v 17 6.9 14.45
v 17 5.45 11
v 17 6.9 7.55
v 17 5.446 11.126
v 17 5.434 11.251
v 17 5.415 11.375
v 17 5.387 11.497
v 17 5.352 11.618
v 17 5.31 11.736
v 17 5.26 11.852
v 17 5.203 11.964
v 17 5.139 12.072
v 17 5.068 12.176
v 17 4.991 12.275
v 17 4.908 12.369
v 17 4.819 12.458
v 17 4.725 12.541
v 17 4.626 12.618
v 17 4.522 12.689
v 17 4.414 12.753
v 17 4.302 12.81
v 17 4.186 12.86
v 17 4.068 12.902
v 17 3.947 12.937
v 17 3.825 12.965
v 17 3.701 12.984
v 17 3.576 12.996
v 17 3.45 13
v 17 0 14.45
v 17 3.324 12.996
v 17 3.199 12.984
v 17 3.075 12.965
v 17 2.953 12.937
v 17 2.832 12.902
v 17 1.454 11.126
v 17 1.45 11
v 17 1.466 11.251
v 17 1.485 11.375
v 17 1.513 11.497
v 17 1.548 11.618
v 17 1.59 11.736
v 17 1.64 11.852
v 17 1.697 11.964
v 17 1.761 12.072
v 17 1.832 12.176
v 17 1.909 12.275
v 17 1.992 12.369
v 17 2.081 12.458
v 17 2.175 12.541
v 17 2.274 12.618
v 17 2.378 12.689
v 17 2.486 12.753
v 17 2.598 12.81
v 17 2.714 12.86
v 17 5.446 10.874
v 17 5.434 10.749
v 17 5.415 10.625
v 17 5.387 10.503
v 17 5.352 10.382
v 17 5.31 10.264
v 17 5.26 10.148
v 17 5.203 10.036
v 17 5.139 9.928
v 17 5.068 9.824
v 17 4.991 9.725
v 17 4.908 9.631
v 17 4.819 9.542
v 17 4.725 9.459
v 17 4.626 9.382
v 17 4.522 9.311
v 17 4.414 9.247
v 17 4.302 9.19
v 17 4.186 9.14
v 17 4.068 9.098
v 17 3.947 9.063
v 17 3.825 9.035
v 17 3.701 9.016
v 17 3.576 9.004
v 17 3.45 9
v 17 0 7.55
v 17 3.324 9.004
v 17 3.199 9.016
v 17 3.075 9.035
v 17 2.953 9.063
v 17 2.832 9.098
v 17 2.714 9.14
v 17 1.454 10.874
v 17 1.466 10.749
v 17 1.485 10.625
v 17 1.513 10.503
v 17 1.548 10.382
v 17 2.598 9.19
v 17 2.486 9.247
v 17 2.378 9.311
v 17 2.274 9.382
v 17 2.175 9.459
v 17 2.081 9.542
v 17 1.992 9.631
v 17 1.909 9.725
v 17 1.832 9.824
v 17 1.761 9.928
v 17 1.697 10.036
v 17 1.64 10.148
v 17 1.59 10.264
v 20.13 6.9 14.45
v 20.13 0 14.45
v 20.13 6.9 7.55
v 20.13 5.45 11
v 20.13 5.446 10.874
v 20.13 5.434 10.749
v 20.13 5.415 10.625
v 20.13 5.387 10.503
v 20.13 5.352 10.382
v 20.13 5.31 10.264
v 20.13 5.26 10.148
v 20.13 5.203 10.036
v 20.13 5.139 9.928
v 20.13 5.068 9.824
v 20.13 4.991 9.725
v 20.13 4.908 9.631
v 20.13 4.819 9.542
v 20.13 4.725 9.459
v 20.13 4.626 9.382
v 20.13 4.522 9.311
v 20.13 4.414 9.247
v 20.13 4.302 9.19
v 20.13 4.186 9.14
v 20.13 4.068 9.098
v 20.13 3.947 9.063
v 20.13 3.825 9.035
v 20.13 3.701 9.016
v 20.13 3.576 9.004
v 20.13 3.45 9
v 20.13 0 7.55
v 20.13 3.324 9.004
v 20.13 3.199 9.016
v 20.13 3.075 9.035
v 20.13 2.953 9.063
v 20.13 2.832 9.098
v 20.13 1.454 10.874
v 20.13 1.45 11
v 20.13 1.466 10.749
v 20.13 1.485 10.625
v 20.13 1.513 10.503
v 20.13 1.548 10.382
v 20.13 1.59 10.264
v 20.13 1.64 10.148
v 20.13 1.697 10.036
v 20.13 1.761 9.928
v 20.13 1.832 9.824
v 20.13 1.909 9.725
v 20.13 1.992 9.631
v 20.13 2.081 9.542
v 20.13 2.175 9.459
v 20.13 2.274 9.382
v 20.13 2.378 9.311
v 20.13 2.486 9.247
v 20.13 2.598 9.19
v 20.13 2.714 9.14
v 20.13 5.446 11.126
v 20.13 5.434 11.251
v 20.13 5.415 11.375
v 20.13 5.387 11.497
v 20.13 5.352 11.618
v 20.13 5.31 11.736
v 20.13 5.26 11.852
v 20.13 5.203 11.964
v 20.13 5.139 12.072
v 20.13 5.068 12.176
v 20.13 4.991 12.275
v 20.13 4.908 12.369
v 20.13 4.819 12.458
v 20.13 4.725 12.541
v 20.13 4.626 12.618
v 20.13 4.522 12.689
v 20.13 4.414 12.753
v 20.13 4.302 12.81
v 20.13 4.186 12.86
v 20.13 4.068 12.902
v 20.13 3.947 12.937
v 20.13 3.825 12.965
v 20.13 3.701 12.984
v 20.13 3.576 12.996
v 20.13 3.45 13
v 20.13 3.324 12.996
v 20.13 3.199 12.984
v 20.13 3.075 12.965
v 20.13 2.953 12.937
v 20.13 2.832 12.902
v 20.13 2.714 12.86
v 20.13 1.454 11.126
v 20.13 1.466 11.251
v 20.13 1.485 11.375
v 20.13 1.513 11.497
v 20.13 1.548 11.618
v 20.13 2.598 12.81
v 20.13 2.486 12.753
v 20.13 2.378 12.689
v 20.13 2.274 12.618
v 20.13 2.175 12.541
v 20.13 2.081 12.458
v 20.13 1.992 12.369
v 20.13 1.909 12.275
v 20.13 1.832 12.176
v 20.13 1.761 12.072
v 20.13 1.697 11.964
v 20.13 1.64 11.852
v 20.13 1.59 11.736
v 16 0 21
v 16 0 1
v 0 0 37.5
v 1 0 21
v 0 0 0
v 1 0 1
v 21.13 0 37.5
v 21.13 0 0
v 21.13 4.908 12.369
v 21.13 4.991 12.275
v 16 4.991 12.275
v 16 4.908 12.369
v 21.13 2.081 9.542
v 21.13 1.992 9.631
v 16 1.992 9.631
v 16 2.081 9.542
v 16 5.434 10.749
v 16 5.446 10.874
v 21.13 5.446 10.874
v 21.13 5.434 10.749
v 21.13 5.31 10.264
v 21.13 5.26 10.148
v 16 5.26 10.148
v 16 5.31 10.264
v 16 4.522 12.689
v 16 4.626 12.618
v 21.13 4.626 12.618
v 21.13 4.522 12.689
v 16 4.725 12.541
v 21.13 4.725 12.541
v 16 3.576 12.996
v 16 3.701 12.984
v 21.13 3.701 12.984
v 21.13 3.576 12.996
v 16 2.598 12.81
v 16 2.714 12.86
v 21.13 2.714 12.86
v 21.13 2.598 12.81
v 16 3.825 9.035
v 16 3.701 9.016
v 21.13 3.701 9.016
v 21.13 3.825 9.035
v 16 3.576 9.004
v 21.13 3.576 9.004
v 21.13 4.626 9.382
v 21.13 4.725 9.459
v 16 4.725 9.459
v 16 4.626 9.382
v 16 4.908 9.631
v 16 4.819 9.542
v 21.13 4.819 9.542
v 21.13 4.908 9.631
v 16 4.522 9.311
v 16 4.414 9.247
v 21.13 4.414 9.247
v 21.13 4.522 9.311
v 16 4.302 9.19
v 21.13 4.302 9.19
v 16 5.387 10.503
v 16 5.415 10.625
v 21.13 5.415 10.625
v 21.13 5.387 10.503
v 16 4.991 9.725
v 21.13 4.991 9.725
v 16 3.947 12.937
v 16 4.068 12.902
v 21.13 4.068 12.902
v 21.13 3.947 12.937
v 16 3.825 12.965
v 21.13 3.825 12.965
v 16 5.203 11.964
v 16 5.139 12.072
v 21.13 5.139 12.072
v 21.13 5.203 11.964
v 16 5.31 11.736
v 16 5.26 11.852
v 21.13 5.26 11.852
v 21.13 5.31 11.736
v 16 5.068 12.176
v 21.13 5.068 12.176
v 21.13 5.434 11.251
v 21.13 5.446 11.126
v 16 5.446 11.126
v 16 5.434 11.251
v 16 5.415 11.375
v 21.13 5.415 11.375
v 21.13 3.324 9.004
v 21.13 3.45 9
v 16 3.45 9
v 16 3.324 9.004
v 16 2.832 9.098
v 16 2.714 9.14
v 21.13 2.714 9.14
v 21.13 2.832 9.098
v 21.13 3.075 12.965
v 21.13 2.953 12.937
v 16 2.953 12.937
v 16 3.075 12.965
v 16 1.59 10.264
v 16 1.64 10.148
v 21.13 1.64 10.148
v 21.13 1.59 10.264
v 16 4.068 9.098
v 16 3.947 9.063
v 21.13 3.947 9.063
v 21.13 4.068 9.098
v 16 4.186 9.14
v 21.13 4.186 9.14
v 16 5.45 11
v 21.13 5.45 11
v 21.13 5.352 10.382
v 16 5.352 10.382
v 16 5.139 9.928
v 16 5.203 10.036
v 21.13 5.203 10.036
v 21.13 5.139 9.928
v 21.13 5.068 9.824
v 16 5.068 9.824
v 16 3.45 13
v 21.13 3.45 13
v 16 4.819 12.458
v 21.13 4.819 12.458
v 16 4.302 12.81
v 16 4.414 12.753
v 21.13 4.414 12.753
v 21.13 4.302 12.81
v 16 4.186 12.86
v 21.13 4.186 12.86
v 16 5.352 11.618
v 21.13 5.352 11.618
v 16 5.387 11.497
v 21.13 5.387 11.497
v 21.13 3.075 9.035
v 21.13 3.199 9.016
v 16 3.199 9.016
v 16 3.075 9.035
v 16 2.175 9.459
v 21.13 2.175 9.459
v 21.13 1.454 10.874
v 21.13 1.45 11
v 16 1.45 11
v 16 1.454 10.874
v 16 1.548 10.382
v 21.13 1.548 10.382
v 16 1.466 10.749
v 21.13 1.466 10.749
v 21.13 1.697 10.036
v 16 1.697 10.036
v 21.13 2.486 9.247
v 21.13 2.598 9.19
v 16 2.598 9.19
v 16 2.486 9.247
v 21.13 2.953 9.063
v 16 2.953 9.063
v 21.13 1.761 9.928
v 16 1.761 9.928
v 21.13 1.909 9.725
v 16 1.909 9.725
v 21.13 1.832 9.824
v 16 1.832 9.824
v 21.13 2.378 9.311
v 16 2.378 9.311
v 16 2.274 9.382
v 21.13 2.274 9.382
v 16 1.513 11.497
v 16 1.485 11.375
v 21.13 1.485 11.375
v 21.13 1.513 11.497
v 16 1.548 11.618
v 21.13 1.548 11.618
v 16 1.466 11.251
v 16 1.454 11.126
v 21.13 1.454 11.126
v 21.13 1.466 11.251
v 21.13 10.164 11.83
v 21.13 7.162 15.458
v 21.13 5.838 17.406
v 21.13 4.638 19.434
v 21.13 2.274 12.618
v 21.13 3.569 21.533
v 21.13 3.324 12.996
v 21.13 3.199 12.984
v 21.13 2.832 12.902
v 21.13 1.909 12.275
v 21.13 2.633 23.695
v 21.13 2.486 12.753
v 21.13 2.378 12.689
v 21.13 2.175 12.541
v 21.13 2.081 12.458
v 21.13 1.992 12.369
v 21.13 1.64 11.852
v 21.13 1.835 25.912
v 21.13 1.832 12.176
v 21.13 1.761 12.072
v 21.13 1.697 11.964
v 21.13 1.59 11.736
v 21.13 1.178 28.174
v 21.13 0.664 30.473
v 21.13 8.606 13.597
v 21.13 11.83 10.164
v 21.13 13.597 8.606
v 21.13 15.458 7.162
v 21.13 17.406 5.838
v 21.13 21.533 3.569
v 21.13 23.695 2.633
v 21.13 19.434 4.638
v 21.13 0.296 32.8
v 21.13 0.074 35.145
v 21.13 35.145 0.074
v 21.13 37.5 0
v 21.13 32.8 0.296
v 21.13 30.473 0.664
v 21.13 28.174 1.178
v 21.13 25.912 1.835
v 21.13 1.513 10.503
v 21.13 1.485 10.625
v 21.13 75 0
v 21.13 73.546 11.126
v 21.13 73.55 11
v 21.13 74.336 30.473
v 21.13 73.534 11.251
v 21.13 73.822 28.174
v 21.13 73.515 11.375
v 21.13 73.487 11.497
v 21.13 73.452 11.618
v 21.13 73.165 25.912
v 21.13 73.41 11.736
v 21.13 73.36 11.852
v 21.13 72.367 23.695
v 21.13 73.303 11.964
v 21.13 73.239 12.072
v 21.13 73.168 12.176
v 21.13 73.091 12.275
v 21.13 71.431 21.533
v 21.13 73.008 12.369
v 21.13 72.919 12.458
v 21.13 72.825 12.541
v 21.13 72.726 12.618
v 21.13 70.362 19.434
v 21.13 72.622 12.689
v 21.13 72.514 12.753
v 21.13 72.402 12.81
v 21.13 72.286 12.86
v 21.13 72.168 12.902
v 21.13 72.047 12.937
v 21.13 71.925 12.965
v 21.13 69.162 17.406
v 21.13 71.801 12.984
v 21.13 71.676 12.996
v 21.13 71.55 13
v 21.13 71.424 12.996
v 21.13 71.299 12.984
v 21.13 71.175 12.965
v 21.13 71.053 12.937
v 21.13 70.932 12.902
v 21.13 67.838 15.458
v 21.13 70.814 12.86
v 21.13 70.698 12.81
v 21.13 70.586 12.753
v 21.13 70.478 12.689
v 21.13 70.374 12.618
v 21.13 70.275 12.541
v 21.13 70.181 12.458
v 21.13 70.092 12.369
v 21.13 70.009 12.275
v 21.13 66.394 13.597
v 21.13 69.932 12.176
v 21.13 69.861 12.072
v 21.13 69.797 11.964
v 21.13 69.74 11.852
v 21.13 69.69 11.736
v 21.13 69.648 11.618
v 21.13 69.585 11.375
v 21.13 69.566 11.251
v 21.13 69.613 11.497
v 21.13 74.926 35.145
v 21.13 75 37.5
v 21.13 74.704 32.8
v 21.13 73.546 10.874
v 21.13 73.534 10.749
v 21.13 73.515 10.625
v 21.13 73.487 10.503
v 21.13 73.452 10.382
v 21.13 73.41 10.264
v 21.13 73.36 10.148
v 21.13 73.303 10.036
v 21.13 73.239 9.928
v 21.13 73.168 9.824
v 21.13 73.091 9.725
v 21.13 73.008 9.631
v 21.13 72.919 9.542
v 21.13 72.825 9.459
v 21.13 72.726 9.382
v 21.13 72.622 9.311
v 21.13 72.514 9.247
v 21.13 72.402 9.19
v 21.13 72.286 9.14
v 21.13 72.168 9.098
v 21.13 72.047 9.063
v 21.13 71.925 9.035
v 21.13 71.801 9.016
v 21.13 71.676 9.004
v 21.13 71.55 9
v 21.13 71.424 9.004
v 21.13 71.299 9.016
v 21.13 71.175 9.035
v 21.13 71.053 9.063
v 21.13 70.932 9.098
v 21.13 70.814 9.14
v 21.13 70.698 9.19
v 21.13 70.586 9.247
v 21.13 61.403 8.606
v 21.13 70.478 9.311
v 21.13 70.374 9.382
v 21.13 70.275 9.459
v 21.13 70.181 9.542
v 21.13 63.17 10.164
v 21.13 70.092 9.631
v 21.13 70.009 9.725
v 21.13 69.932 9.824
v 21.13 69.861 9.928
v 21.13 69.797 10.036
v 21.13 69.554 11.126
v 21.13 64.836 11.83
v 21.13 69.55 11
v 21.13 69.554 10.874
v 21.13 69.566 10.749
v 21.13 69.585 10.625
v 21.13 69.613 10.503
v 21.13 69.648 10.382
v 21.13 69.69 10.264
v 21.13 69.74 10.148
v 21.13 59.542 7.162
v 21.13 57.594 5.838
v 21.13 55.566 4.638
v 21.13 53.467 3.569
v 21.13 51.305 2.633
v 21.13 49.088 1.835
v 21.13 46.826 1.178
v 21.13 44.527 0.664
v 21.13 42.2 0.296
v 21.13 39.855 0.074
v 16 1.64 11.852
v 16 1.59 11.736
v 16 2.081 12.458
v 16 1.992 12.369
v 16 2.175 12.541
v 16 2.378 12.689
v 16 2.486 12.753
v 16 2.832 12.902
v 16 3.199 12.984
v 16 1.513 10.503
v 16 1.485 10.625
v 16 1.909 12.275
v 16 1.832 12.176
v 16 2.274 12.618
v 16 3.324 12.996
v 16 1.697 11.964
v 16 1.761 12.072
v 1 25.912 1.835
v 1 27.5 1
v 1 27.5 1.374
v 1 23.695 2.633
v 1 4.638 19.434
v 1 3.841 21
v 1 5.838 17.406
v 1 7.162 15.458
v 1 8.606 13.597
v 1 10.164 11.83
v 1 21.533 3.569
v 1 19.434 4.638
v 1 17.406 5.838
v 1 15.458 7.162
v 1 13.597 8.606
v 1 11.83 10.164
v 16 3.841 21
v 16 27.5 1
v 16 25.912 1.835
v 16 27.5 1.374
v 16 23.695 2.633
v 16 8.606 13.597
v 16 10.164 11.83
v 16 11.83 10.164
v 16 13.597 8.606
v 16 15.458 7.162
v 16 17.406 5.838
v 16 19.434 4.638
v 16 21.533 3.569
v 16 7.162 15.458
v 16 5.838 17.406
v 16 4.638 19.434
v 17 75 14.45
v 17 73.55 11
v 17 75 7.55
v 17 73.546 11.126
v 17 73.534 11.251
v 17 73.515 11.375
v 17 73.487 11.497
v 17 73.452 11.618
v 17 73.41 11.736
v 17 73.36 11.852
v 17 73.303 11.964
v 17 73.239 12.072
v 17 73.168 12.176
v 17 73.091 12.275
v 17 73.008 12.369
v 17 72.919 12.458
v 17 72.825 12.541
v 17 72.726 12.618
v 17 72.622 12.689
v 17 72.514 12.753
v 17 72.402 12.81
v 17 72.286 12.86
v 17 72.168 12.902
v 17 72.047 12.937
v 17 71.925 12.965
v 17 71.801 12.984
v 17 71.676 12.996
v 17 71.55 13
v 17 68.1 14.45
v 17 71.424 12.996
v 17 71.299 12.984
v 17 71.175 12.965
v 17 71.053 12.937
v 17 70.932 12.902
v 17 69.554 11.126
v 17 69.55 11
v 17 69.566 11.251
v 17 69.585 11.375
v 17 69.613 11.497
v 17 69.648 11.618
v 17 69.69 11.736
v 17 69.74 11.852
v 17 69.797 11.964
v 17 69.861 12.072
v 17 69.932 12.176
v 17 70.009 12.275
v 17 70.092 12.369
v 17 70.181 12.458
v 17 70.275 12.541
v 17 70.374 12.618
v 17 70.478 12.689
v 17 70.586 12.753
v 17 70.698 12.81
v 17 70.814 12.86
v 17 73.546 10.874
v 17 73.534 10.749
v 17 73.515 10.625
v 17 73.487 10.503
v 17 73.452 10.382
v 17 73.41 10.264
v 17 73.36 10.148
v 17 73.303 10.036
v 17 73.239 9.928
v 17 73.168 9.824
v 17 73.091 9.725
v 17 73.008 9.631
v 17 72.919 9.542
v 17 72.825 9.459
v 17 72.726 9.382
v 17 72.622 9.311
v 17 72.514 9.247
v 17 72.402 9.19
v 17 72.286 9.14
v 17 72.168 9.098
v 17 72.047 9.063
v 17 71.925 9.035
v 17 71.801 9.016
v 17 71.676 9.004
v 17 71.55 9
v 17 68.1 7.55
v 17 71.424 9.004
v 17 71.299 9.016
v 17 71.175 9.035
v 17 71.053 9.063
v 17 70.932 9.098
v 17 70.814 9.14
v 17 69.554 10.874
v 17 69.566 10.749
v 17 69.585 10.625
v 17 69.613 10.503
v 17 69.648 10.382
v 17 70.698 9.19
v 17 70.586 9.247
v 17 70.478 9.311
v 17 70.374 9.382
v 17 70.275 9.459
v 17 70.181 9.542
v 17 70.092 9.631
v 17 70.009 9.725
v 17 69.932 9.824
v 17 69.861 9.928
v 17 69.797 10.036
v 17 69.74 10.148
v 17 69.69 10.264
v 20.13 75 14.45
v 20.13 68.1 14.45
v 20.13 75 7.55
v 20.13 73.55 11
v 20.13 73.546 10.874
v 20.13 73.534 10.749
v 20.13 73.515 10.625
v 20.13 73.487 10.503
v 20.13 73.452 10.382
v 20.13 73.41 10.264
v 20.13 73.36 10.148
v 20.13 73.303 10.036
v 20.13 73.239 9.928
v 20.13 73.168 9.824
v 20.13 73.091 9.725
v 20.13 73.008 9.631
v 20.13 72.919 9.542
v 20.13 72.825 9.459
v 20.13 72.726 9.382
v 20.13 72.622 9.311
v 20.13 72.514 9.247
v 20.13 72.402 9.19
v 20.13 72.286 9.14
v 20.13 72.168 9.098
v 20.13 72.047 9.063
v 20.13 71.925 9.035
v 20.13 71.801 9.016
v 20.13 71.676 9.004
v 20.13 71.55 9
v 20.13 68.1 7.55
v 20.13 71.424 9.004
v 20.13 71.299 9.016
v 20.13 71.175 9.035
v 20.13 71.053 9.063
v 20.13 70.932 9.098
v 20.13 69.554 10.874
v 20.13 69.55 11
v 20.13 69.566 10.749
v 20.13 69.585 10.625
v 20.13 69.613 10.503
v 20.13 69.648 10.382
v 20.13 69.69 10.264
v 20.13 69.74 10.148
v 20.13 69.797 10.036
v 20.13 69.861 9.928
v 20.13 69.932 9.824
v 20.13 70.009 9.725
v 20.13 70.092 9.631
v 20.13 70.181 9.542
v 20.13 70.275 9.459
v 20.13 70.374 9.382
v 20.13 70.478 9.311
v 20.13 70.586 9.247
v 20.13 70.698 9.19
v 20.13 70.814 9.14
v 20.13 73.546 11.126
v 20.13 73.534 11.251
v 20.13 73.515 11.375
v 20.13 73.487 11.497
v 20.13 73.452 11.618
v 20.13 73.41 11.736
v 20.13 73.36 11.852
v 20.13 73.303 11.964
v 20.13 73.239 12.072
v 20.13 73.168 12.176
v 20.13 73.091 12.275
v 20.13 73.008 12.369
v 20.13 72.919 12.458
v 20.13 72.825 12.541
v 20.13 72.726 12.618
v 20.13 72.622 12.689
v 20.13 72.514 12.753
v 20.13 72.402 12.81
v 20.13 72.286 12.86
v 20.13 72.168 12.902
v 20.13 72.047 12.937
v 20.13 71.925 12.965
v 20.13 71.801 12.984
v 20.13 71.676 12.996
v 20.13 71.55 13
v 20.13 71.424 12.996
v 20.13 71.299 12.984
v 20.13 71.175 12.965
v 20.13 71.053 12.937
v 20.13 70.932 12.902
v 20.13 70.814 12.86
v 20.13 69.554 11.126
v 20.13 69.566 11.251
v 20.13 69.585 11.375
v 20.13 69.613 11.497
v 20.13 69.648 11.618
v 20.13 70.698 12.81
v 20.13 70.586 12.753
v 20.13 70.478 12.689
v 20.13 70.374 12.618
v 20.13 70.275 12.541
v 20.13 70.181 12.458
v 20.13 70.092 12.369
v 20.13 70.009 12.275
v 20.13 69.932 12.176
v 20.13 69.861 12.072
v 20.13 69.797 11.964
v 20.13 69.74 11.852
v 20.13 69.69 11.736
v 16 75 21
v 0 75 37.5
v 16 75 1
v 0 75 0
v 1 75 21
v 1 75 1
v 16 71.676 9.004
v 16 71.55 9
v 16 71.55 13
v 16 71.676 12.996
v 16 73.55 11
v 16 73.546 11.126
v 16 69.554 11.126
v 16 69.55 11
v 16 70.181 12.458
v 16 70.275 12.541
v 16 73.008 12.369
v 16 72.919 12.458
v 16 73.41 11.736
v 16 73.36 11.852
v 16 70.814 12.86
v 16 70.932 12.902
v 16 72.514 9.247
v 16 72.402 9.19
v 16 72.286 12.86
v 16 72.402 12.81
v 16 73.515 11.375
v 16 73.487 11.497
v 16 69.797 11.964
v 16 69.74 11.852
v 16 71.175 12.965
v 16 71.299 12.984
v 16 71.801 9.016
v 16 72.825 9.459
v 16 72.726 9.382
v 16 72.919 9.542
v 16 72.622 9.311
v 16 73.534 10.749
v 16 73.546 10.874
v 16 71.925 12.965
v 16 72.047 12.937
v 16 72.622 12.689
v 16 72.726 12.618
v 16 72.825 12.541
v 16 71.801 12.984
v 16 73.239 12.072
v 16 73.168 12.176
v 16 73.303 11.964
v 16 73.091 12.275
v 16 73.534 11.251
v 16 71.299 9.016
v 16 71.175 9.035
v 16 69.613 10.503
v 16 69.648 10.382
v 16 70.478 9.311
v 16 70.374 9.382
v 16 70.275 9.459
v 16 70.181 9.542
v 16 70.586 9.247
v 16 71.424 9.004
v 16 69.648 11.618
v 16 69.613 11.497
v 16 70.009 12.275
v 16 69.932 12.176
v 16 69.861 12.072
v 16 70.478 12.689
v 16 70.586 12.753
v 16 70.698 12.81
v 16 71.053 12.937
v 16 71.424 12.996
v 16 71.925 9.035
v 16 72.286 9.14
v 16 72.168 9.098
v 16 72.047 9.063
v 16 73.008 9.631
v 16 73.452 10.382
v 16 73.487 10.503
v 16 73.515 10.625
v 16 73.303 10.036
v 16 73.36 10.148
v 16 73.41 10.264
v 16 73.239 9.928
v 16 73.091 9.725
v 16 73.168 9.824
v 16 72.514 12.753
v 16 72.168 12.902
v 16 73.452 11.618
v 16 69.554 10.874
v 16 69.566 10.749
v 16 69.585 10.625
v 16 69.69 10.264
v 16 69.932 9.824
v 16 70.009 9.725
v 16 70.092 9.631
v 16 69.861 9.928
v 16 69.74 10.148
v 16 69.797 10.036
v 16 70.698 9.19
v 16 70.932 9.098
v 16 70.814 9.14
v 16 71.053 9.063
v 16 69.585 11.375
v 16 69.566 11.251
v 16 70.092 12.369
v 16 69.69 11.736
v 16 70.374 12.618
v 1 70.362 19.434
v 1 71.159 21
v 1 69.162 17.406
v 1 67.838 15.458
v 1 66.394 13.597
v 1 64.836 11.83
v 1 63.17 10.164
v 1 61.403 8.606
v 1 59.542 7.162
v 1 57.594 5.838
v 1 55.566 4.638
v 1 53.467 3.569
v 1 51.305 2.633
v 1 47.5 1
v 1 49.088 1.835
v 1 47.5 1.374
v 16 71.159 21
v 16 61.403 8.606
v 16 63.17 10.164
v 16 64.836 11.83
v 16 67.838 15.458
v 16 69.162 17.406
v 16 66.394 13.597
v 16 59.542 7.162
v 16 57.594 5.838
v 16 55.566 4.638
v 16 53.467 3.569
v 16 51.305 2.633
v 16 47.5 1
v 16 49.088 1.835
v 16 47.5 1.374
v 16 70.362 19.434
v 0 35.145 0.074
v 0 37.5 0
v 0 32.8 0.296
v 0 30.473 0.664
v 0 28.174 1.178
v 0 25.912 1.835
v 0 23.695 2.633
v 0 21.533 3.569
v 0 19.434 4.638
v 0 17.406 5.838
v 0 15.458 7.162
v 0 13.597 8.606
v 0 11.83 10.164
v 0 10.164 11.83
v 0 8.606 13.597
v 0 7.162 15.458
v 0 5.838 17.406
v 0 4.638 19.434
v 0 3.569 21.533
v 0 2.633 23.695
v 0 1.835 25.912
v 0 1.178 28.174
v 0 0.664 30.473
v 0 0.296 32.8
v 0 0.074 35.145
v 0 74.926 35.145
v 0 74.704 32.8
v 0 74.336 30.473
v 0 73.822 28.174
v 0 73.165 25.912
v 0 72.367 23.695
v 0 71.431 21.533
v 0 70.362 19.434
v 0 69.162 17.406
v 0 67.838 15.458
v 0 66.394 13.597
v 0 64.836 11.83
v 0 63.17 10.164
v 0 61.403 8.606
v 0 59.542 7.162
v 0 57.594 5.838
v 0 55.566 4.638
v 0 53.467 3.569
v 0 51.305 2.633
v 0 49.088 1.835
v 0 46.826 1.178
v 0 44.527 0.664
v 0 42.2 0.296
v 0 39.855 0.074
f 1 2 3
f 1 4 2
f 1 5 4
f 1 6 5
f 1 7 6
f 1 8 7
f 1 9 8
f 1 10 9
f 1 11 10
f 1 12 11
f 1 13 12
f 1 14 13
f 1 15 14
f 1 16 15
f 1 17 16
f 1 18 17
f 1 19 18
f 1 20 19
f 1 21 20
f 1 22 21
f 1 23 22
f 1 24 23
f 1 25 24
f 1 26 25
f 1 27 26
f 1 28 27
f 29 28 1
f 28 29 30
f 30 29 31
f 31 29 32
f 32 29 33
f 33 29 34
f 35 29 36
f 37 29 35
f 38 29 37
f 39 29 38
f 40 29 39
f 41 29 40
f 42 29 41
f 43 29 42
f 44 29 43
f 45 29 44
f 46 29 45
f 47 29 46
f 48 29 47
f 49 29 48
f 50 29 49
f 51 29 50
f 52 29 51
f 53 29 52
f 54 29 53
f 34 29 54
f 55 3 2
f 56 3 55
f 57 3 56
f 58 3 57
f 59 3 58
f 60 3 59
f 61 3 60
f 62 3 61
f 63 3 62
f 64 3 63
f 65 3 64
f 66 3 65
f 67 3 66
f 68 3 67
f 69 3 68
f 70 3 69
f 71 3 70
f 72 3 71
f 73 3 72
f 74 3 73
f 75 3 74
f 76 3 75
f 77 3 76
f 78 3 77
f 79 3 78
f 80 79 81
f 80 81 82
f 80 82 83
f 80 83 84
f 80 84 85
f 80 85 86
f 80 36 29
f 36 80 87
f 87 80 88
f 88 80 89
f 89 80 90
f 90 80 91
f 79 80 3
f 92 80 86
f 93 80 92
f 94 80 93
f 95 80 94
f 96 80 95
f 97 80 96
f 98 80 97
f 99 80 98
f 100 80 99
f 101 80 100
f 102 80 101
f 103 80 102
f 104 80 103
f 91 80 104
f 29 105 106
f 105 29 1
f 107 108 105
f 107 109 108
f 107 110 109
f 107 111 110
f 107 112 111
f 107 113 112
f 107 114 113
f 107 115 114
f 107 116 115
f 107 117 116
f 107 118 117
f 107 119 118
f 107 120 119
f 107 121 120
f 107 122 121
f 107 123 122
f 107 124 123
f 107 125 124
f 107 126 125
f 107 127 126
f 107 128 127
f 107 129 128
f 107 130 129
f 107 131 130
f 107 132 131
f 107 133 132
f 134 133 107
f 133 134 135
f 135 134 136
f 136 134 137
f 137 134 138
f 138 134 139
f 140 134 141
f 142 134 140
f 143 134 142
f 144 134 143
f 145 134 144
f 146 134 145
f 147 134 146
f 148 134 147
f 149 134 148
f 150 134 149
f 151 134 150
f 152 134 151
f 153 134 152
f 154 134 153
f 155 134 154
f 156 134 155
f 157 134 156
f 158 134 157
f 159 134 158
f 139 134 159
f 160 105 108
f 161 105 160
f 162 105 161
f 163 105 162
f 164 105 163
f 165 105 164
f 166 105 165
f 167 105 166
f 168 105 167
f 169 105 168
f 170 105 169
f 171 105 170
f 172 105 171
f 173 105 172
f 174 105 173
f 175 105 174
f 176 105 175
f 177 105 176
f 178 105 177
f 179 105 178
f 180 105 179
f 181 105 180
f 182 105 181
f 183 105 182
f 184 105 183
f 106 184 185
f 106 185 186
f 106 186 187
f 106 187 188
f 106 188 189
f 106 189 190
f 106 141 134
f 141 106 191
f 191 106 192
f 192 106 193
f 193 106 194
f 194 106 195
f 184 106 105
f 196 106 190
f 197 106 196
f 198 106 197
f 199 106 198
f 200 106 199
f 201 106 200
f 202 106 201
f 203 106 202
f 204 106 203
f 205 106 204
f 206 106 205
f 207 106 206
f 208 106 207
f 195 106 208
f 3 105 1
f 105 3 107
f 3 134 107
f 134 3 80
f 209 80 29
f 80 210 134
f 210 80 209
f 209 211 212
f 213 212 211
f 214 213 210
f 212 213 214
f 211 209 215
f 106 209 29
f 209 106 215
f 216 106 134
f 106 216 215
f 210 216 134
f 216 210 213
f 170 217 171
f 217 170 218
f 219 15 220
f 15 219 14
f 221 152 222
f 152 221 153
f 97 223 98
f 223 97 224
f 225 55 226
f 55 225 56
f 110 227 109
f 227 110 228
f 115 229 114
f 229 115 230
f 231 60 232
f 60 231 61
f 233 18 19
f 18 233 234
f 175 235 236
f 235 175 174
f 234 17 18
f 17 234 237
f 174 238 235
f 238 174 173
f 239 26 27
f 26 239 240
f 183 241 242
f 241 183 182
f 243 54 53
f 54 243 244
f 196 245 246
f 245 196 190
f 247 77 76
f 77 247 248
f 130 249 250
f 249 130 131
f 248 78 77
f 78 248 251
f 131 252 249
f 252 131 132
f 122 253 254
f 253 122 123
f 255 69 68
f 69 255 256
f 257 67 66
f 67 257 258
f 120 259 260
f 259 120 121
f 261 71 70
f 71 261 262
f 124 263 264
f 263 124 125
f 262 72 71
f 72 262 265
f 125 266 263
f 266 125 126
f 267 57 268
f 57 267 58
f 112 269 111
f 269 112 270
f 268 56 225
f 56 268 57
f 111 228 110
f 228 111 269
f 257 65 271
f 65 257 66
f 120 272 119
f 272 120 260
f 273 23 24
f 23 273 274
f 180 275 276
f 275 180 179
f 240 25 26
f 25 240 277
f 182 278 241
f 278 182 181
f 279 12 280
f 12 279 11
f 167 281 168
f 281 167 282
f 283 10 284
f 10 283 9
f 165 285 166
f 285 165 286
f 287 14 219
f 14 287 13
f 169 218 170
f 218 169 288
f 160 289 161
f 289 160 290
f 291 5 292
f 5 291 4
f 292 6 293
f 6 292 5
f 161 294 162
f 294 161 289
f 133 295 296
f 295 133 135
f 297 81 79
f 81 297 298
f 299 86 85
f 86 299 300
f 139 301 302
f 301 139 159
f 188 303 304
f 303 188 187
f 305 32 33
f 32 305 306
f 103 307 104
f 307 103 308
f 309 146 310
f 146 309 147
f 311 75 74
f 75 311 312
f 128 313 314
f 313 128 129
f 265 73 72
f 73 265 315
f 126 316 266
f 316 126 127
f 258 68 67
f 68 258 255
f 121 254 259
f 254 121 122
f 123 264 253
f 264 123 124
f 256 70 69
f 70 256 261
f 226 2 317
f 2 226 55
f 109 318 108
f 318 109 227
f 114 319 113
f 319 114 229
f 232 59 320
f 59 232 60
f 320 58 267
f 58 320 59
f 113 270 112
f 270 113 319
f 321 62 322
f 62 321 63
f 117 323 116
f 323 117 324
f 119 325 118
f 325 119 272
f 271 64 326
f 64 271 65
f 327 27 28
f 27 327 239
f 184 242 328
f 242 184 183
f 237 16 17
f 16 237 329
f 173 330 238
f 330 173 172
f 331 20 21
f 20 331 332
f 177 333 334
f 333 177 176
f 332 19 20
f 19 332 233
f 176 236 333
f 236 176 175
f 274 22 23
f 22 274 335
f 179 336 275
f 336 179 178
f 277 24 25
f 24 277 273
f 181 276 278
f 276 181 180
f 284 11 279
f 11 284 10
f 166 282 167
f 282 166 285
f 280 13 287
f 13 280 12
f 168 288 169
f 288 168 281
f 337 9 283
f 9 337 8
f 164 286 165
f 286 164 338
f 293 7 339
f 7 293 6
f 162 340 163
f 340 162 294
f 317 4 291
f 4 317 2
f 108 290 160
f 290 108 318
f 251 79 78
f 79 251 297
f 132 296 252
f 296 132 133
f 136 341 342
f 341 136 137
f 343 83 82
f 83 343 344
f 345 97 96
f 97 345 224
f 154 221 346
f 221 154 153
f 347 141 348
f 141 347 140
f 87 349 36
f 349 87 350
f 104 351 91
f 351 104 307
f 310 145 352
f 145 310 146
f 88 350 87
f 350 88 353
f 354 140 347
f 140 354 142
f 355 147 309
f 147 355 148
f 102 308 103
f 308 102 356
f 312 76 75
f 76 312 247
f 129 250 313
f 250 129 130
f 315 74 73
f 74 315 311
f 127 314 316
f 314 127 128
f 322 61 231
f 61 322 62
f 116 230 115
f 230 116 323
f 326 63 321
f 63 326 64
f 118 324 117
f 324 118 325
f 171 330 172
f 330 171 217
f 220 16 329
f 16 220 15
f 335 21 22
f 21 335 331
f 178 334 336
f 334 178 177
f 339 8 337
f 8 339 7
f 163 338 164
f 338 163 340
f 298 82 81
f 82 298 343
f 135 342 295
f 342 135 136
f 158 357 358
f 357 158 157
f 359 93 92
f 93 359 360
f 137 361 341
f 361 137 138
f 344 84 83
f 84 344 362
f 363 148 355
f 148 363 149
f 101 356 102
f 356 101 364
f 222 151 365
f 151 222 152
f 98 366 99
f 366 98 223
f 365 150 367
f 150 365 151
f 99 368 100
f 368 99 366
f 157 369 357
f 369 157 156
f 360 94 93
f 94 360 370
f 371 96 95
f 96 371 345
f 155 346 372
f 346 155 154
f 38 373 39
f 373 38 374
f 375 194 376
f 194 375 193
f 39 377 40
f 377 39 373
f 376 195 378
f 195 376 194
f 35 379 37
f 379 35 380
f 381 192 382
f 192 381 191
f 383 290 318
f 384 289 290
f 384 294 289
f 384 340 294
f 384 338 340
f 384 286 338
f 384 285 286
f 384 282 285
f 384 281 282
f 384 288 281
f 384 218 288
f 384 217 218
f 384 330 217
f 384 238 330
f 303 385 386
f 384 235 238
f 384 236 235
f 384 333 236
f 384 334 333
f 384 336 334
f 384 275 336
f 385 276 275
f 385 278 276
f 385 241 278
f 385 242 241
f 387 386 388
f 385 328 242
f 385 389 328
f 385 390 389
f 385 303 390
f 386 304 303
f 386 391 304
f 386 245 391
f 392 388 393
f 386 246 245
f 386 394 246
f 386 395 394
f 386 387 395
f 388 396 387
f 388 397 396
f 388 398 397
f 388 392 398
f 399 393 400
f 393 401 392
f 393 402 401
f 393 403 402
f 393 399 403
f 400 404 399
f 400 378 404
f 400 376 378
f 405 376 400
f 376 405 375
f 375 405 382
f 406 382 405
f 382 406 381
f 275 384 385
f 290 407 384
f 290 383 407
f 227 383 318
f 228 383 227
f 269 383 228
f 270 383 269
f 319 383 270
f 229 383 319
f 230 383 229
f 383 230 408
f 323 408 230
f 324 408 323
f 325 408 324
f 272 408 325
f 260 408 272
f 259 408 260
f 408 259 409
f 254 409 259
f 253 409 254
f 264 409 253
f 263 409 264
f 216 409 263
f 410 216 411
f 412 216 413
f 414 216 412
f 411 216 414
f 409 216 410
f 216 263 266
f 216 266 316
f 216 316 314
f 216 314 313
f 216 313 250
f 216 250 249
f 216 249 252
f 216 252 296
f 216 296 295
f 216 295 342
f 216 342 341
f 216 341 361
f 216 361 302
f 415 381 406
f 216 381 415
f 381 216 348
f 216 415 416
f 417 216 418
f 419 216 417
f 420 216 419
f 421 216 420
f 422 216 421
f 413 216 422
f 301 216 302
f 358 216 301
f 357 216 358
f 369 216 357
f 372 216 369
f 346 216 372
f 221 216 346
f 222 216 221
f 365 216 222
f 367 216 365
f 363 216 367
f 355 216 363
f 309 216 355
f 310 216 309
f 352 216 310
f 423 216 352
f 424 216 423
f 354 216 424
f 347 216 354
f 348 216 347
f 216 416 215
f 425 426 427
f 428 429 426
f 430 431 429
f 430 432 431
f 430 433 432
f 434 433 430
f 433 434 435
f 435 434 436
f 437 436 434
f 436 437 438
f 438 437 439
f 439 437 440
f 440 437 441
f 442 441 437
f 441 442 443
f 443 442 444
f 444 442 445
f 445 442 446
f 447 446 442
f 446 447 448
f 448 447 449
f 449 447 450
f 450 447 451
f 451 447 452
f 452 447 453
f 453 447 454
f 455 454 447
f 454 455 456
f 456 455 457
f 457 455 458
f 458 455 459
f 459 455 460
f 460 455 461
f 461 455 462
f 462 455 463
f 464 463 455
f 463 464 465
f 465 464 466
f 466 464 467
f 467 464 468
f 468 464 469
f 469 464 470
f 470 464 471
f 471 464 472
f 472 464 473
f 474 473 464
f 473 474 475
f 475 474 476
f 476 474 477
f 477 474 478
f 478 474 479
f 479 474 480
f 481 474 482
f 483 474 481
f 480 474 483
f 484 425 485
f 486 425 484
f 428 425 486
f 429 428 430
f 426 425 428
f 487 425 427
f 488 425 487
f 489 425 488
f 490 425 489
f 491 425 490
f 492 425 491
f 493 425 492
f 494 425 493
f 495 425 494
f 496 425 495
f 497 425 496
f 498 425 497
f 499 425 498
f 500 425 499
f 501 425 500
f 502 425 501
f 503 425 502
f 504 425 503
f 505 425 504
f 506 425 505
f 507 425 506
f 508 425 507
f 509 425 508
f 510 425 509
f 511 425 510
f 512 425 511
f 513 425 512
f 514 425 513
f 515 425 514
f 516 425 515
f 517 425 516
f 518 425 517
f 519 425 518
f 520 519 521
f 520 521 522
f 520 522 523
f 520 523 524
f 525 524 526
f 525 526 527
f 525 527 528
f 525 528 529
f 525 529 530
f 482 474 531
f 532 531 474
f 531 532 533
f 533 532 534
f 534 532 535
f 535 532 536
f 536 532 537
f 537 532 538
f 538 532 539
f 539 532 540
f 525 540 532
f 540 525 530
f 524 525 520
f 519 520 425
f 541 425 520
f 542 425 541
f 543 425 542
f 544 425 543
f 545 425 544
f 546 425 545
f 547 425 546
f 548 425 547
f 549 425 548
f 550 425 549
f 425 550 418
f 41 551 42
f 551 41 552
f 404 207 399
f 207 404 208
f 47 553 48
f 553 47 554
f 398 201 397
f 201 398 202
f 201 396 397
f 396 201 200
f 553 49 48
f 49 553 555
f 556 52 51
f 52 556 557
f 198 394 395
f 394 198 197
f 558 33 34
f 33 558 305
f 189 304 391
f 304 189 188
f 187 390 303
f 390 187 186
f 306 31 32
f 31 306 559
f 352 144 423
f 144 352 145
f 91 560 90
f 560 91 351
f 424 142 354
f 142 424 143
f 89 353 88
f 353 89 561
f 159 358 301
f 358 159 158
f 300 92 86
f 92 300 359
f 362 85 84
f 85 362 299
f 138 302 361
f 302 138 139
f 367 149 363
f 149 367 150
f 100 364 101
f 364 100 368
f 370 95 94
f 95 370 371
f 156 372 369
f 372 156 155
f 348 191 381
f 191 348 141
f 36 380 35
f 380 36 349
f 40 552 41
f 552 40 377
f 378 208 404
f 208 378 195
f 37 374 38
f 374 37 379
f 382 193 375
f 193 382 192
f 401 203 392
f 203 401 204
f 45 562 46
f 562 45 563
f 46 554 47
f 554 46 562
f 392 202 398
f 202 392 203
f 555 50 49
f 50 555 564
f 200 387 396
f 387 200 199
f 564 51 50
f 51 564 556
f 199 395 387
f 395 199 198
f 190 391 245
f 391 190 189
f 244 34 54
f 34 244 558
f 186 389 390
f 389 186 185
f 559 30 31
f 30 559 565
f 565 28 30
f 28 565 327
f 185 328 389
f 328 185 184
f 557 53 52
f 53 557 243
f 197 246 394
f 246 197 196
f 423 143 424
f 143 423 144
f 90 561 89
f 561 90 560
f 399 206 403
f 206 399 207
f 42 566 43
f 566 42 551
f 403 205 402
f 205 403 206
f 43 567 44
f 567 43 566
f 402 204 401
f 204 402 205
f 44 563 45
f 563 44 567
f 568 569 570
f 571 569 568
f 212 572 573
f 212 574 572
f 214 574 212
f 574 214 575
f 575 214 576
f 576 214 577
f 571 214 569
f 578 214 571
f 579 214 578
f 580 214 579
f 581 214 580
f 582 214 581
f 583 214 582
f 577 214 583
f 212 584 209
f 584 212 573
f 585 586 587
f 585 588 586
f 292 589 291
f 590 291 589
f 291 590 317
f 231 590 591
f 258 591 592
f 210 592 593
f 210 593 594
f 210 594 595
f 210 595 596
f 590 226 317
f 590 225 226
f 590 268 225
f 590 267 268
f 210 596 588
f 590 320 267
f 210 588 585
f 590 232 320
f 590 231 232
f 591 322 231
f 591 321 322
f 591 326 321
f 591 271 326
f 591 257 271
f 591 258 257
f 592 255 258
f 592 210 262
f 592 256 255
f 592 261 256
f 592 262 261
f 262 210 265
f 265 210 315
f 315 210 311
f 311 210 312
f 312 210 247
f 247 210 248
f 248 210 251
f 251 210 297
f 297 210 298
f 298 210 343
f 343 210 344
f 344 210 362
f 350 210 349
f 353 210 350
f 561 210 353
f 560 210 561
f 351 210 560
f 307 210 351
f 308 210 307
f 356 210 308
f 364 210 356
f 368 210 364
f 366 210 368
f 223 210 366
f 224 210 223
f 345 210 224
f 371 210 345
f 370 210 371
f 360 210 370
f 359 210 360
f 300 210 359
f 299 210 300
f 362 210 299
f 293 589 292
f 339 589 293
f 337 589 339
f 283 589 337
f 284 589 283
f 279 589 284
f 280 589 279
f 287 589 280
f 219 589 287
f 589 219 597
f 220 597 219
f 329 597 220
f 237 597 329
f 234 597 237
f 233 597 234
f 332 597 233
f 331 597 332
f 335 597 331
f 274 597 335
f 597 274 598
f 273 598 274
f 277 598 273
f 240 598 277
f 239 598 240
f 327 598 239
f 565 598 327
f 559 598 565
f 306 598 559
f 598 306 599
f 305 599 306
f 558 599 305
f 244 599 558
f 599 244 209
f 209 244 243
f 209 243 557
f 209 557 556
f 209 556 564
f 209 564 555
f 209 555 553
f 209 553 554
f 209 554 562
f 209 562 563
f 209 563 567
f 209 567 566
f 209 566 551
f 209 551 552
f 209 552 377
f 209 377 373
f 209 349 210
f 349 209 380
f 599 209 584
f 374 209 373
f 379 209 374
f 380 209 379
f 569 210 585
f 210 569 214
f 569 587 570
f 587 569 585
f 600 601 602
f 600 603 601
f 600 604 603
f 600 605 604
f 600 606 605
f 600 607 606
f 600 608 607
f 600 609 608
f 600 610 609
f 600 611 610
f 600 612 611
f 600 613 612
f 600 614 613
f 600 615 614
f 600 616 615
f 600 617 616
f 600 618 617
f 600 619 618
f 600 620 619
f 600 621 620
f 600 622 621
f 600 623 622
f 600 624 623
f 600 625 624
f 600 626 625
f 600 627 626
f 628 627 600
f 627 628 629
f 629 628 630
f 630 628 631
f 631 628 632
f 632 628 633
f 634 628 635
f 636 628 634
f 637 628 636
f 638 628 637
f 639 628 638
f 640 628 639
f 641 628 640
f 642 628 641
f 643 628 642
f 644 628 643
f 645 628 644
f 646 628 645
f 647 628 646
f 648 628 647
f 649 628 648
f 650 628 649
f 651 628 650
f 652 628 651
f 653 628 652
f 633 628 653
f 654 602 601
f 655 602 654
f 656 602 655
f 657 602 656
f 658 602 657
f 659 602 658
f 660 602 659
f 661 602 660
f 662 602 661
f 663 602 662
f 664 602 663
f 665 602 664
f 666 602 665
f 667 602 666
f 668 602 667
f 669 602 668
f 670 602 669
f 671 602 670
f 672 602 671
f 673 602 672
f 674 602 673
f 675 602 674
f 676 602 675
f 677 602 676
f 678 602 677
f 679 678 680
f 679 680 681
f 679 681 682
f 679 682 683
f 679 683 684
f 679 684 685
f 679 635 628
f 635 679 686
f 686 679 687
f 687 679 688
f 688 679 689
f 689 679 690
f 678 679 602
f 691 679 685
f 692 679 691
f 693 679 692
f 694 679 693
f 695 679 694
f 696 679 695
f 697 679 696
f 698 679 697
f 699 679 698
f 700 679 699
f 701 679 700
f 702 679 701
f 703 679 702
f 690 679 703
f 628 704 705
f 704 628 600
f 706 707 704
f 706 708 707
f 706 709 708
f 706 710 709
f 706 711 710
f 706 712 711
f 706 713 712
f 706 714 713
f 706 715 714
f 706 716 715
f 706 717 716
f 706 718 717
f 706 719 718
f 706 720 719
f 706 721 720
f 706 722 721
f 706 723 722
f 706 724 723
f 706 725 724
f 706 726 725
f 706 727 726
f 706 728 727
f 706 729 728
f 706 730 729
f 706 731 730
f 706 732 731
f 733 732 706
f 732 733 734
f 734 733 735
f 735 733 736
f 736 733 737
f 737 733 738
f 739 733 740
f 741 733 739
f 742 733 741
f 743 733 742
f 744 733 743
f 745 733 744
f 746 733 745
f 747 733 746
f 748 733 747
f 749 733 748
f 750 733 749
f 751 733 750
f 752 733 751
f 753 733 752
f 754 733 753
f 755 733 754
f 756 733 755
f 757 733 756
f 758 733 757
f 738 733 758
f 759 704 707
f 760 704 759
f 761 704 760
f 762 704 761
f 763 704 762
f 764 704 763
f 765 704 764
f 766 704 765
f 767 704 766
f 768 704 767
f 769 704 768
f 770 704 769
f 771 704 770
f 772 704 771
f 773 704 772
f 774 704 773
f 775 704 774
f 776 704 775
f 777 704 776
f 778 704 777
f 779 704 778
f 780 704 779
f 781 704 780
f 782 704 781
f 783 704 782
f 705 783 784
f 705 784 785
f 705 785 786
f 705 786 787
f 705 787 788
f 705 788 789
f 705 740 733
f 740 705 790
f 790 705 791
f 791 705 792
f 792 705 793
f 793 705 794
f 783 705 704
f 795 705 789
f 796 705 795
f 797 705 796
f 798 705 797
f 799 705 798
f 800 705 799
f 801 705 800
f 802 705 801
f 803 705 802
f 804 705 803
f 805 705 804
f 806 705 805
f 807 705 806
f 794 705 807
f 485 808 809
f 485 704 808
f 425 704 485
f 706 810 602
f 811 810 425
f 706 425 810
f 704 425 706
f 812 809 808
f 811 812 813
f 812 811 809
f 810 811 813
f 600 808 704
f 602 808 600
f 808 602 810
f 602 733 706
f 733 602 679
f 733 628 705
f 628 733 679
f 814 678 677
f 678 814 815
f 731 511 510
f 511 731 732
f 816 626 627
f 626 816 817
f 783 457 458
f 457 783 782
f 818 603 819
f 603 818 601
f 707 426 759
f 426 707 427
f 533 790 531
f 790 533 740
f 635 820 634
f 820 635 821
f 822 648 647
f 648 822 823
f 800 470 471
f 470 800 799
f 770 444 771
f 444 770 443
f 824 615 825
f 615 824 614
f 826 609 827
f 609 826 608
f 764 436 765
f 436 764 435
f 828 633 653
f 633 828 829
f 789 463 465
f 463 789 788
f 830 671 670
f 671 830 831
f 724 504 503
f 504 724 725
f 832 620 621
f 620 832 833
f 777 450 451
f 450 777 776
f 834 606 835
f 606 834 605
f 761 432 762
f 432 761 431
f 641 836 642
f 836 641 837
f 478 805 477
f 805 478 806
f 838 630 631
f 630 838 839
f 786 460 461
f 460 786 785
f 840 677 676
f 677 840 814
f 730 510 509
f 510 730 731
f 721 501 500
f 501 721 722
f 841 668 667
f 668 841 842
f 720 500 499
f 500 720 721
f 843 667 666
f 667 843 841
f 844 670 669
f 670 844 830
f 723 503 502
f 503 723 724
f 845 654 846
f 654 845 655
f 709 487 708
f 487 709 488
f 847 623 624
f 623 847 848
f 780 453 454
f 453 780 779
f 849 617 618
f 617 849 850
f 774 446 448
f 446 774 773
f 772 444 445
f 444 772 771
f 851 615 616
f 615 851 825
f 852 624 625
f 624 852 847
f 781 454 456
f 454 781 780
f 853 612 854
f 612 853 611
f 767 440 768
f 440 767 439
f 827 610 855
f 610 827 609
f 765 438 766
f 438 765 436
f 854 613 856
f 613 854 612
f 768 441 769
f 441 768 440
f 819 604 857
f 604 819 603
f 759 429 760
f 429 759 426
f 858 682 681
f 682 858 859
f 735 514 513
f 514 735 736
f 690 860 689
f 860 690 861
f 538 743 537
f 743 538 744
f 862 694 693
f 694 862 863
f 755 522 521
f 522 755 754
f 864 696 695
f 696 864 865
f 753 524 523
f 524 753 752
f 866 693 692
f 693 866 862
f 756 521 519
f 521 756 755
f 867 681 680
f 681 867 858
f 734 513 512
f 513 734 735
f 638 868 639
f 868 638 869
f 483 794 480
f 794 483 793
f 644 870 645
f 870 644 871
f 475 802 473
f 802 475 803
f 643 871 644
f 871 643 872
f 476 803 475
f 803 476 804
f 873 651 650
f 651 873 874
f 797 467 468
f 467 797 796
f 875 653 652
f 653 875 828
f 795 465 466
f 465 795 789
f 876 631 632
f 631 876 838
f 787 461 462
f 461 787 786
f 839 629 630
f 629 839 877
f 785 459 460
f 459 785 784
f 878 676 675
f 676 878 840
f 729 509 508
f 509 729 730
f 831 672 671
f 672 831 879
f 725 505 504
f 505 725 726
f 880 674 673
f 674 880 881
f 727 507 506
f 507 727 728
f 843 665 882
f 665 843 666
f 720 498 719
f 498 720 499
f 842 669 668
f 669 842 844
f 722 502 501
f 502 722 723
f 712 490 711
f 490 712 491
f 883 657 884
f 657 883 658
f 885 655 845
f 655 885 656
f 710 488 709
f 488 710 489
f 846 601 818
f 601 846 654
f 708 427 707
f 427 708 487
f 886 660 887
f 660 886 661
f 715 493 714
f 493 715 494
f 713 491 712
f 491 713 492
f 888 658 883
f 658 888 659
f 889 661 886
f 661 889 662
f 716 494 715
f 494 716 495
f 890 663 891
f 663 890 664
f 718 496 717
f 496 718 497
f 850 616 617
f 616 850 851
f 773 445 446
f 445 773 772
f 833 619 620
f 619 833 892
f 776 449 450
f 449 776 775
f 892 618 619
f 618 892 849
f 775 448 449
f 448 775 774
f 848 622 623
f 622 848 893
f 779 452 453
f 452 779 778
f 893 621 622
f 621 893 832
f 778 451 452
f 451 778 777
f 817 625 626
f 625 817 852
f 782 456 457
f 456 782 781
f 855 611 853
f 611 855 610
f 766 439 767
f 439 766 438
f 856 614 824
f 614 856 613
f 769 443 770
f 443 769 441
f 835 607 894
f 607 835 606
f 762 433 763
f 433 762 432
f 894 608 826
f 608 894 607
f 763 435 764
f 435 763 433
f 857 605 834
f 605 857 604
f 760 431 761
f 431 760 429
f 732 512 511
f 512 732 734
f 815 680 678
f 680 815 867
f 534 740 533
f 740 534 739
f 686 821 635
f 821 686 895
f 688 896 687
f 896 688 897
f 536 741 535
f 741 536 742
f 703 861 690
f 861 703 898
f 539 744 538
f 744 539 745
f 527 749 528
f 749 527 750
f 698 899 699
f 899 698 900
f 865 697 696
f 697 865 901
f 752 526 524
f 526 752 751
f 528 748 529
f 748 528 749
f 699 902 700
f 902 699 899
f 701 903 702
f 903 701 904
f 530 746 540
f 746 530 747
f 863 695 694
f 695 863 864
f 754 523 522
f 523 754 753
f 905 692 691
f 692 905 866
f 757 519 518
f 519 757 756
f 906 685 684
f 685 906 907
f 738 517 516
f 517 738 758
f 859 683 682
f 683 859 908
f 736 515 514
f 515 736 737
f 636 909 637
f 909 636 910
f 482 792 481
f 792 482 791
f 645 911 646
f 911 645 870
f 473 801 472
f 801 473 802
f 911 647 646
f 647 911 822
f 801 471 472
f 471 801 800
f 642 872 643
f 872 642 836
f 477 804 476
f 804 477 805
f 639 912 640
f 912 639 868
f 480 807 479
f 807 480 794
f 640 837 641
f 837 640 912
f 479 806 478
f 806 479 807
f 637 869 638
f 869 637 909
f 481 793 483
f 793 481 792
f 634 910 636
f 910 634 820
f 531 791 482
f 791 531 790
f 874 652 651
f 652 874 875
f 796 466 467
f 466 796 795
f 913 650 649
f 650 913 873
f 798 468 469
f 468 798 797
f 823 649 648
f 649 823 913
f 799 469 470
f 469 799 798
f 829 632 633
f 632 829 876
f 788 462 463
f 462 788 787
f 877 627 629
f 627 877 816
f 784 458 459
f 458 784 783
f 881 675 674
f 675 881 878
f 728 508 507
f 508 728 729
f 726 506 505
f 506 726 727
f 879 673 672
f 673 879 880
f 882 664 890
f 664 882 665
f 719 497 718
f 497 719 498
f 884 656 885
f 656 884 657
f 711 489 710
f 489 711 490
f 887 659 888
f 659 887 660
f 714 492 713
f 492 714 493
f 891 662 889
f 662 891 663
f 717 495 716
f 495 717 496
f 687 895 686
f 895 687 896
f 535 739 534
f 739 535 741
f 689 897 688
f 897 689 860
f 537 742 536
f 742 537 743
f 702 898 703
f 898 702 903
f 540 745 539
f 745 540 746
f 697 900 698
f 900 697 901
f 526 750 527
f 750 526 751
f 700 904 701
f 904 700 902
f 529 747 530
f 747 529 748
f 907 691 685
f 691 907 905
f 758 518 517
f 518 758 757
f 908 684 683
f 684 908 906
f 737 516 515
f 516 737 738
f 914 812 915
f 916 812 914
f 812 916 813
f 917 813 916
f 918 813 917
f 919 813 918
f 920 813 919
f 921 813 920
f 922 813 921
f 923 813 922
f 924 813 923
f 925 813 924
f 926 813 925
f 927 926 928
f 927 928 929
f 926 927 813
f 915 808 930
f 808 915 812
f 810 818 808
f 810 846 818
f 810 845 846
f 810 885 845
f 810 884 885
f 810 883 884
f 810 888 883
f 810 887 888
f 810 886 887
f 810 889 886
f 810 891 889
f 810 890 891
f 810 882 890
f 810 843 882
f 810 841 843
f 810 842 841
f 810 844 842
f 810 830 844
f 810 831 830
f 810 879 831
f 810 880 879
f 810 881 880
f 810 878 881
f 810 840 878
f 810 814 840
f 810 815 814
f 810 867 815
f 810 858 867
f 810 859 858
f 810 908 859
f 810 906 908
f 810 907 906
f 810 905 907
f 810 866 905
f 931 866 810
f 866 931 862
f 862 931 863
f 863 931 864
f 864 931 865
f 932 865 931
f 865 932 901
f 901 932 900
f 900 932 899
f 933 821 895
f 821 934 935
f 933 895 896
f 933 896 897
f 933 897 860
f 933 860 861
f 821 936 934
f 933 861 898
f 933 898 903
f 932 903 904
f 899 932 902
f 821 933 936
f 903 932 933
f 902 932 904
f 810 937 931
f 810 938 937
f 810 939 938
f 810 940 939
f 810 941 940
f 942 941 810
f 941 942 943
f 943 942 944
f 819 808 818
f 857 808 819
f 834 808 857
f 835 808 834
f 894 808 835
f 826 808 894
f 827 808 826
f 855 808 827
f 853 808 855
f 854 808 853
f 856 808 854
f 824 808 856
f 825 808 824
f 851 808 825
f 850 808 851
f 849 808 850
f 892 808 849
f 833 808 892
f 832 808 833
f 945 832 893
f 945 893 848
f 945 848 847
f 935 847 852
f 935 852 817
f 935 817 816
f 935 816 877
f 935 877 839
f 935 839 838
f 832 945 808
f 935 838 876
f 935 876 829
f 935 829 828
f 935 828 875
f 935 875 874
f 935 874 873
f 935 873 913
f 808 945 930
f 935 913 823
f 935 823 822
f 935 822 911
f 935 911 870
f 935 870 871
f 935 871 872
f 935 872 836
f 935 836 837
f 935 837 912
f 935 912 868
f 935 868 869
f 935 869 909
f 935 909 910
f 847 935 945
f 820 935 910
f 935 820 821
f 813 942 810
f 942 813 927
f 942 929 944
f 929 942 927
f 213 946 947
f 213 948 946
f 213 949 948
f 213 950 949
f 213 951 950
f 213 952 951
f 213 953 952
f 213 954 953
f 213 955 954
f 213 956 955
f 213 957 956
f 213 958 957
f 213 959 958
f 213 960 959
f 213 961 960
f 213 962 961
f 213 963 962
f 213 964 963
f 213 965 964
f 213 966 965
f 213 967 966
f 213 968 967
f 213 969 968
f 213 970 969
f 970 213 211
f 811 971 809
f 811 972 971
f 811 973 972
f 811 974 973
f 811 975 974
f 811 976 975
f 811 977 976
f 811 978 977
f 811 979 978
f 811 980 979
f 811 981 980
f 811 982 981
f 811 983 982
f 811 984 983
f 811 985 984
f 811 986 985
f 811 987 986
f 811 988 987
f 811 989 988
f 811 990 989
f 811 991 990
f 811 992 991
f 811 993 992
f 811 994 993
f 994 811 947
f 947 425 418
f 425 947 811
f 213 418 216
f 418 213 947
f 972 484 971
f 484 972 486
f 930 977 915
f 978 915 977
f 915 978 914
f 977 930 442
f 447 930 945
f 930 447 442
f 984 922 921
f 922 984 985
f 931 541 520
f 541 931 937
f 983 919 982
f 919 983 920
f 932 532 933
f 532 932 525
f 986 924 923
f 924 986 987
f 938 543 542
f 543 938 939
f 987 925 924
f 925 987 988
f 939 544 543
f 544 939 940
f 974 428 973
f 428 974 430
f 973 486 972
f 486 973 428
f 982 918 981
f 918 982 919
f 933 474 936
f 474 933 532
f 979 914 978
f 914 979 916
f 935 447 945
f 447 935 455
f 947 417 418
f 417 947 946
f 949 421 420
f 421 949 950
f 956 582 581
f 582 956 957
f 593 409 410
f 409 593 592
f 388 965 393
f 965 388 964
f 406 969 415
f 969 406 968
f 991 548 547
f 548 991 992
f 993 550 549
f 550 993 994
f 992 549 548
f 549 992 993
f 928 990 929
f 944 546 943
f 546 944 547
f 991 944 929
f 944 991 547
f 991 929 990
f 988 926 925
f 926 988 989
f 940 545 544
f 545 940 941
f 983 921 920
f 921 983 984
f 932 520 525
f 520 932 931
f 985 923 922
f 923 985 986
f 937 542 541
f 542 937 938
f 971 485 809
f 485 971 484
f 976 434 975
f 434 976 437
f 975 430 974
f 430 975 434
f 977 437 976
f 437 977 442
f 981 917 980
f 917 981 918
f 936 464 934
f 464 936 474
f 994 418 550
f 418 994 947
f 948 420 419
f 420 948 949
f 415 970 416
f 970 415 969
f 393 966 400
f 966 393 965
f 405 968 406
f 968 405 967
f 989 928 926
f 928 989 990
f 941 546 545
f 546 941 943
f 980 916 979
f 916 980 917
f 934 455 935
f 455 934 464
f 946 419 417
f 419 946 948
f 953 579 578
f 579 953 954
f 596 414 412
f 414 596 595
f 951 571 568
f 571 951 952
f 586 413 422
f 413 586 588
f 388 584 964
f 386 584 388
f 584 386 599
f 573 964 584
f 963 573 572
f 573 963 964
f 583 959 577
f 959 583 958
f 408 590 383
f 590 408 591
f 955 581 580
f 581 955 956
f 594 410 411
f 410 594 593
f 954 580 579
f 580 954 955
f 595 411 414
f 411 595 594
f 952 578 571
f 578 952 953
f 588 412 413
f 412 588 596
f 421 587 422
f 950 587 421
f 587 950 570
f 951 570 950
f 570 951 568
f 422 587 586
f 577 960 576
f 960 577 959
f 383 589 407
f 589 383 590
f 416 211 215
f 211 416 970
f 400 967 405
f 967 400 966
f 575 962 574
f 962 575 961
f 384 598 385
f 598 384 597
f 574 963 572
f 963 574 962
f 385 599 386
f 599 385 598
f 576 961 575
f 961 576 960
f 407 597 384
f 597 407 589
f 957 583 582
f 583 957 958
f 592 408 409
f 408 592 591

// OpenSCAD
can_diameter = 75;
can_length = 258;
motor_width = 15;
motor_height = 20;
motor_length = 27.5;
motor_lock_nut_thickness = 3.13;
motor_lock_nut_height = 6.9;
bolt_size = 4;
$fn=100;

module motor(){
    cube([motor_width, motor_length, motor_height]);
}

difference(){
    cube([motor_width+motor_lock_nut_thickness+3,can_diameter,can_diameter/2]);
    
    translate([1,0,1]) {
        motor();
        translate([1+motor_width,0,motor_height/2-(motor_lock_nut_height/2)]){
            cube([motor_lock_nut_thickness, motor_lock_nut_height, motor_lock_nut_height]);
            translate([-1.1, motor_lock_nut_height/2, motor_lock_nut_height/2]) rotate([0,90,0]) cylinder(r=bolt_size/2,h=motor_lock_nut_thickness+2.1);
        }      
    }
    
    translate([1,can_diameter-motor_length,1]) {
        motor();
        translate([1+motor_width,motor_length,motor_height/2-(motor_lock_nut_height/2)]){
            translate([0,-motor_lock_nut_height,0]) cube([motor_lock_nut_thickness, motor_lock_nut_height, motor_lock_nut_height]);
            translate([-1.1, -motor_lock_nut_height/2, motor_lock_nut_height/2]) rotate([0,90,0]) cylinder(r=bolt_size/2,h=motor_lock_nut_thickness+2.1);
        }      
    }
    
    translate([0,can_diameter/2,can_diameter/2])
        rotate([0,90,0]) 
        cylinder(r=can_diameter/2, h=can_length);
}
